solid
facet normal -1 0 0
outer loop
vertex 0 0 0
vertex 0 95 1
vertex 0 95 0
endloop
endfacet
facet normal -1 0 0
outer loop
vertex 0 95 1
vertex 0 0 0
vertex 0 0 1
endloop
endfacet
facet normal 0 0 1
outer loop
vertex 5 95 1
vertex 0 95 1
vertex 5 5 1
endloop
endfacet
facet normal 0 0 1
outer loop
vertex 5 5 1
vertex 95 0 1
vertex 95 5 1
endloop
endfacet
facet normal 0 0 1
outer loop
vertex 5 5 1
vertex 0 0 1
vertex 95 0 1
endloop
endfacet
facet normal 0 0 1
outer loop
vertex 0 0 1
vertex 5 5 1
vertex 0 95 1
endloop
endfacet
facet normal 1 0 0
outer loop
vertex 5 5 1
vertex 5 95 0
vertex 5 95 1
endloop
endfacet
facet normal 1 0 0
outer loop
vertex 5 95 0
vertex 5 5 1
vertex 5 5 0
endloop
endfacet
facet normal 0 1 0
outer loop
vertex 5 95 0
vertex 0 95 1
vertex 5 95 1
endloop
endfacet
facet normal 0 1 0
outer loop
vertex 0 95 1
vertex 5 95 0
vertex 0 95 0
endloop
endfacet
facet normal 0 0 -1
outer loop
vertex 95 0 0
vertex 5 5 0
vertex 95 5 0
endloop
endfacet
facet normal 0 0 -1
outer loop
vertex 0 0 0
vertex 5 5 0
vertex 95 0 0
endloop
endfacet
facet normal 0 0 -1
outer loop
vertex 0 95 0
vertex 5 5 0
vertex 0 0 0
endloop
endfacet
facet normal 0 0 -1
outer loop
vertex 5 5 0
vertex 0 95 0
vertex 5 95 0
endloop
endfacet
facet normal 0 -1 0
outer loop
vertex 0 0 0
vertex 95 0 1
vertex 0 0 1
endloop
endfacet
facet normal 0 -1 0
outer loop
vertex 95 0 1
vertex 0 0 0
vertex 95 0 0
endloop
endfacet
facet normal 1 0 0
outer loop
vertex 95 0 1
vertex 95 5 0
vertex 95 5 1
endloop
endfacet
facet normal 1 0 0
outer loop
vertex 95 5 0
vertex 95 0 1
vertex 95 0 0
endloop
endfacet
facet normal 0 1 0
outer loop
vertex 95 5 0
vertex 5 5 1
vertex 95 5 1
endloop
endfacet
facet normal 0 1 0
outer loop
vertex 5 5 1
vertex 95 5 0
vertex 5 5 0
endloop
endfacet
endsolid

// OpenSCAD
// -*- mode: SCAD ; c-file-style: "ellemtel" ; coding: utf-8 -*-
//
// NN
//
// © 2018 Roland Sieker <ospalh@gmail.com>
// Licence: CC-BY-SA 4.0

/* [Global] */

// … to preview. You will get all parts when you click “Create Thing”.
part = "NN"; // [NN: foo, bar: baz]

// Set this to “render” and click on “Create Thing” when done with the setup.
preview = 1; // [0:render, 1:preview]

/* [Sizes] */

// bla bla
br = 5;  // [1:0.1:40]
le = 90;
h=1;

/* [Hidden] */

// Done with the customizer

// *******************************************************
// Extra parameters. These can be changed reasonably safely.


w = 1.8;  // Wall width
p = 1.2;  // Bottom, top plate height
c = 0.4;  // Clearance
angle = 60; // Overhangs much below 60° are a problem for me

// *******************************************************
// Some shortcuts. These shouldn’t be changed

tau = 2 * PI;  // π is still wrong. τ = circumference / r

xy_factor = 1/tan(angle);
// To get from a height to a horizontal width inclined correctly
z_factor = tan(angle);  // The other way around


some_distance = 50;
ms = 0.01;  // Muggeseggele.

// fn for differently sized objects and fs, fa; all for preview or rendering.
pna = 40;
pnb = 15;
pa = 5;
ps = 1;
rna = 180;
rnb = 30;
ra = 1;
rs = 0.1;
function na() = (preview) ? pna : rna;
function nb() = (preview) ? pnb : rnb;
$fs = (preview) ? ps : rs;
$fa = (preview) ? pa : ra;

// *******************************************************
// End setup



// *******************************************************
// Generate the parts

corner();

module corner()
{
   cube([br, le+br, h]);
   cube([le+br, br, h]);
}
